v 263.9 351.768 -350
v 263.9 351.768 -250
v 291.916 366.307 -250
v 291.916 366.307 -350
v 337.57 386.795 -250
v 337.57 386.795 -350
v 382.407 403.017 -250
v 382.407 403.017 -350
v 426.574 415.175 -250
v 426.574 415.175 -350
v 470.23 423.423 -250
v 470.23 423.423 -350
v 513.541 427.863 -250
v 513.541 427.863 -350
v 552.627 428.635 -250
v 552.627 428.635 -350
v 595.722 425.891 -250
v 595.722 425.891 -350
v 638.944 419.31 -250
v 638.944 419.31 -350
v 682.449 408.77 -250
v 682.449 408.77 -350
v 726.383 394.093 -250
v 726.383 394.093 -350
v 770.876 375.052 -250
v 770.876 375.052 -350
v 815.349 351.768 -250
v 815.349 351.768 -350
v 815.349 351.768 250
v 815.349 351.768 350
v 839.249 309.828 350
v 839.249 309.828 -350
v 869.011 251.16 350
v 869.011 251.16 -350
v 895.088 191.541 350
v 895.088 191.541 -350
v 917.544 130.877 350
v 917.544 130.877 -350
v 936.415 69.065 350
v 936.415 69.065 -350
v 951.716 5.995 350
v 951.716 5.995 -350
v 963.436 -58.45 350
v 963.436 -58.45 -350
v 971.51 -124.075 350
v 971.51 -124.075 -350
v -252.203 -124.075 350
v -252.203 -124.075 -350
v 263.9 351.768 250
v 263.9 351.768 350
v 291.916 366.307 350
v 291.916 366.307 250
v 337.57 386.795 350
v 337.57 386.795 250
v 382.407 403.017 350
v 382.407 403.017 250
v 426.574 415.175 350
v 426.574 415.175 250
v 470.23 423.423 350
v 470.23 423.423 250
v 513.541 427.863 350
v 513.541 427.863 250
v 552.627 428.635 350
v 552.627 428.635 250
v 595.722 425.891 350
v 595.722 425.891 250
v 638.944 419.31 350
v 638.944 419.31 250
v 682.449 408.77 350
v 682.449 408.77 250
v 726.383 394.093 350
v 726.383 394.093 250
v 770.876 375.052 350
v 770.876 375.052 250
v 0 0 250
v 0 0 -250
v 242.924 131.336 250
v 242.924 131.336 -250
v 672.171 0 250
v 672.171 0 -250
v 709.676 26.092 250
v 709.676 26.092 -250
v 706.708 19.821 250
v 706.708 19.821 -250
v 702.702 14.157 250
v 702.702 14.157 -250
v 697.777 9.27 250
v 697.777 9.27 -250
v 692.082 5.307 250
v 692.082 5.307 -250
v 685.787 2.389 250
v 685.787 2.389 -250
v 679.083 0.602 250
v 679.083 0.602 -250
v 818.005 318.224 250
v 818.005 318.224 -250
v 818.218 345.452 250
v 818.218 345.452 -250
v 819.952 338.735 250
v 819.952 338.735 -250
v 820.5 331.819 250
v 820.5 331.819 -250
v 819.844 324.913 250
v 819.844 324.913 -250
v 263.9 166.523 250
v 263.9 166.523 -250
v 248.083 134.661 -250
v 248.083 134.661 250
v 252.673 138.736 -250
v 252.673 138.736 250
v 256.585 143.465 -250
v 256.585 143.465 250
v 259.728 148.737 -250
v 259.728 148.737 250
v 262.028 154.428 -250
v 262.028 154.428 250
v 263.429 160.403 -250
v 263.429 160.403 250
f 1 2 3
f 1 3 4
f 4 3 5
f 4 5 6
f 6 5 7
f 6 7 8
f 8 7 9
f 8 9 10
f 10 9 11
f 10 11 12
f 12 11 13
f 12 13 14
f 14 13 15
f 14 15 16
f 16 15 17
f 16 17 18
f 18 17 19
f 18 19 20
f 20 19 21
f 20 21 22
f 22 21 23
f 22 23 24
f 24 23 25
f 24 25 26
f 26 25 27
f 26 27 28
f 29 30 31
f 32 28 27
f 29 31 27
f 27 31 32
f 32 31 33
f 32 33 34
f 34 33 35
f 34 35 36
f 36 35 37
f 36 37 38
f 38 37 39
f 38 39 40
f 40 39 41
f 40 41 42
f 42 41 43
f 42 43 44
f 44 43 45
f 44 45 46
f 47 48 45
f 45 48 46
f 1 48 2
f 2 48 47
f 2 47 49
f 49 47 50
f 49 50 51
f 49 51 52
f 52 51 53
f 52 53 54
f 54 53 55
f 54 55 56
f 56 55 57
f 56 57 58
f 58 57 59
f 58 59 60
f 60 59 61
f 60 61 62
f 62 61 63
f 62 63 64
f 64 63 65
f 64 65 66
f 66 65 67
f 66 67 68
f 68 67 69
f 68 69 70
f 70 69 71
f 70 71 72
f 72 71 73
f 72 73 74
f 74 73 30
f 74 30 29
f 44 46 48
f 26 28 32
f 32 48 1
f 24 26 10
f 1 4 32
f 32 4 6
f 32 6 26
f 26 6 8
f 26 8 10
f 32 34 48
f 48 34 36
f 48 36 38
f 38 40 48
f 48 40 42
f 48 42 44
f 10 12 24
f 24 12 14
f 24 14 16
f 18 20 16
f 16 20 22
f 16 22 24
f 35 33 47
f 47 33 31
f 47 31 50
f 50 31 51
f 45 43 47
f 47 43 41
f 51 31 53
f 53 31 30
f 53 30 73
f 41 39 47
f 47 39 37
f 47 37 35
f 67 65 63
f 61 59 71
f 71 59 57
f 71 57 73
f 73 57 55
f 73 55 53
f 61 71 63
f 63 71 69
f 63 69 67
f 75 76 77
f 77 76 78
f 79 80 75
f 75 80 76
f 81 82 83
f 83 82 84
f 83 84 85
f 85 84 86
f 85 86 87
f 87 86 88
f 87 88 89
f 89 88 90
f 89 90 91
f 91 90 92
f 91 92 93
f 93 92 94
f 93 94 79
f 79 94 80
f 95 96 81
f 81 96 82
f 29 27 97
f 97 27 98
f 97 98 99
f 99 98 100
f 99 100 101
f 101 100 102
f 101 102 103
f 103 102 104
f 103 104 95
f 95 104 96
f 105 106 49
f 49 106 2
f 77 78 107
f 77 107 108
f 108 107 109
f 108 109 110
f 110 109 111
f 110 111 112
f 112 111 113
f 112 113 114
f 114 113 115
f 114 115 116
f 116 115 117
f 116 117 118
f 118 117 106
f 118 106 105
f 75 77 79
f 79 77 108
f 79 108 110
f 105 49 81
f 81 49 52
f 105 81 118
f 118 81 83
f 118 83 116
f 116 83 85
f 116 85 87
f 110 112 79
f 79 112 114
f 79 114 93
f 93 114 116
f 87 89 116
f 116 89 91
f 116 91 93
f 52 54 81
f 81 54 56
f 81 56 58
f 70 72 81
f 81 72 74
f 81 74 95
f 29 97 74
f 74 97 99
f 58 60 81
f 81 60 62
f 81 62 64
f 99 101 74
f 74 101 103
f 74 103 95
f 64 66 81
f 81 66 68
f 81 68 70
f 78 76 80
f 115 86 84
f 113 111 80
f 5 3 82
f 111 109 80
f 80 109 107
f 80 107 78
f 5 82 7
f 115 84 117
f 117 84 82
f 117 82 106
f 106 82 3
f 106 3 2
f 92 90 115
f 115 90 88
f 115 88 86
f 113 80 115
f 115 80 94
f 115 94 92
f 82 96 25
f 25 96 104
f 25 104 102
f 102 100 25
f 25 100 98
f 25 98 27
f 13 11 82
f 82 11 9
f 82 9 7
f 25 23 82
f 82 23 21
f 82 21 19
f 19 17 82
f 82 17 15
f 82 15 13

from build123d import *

# Parameters (mm, degrees)
BOSS_EXTRUDE1_DEPTH      = 350
BOSS_EXTRUDE1_DEPTH_BACK = 350
CUT_EXTRUDE1_DEPTH       = 250
CUT_EXTRUDE1_DEPTH_BACK  = 250


with BuildPart() as part:
    # Sketch6 → Boss-Extrude1 (new, two sides: drawn at the far end of the back side and taken through both)
    with BuildSketch(Plane.XY.offset(-BOSS_EXTRUDE1_DEPTH_BACK)):
        with BuildLine():
            Line((971.509879636, -124.075068782), (-252.203431313, -124.075068782))
            Line((-252.203431313, -124.075068782), (263.900031848, 351.768416645))
            add(Edge.make_bspline(
                [(263.900031848, 351.768416645), (546.111311767, 505.694887208), (815.348837324, 351.768416645)],
                knots=[0, 0, 0, 1, 1, 1], degree=2))
            add(Edge.make_bspline(
                [(815.348837324, 351.768416645), (947.510823837, 130.321252054), (971.509879636, -124.075068782)],
                knots=[0, 0, 0, 1, 1, 1], degree=2))
        make_face()
    extrude(amount=BOSS_EXTRUDE1_DEPTH + BOSS_EXTRUDE1_DEPTH_BACK)

    # Sketch5 → Cut-Extrude1 (cut, two sides: drawn at the far end of the back side and taken through both)
    with BuildSketch(Plane.XY.offset(-CUT_EXTRUDE1_DEPTH_BACK)):
        with BuildLine():
            Line((0, 0), (672.171335821, 0))
            ThreePointArc((672.171335821, 0), (695.015340994, 7.164783727), (709.67572834, 26.092428616))
            Line((709.67572834, 26.092428616), (818.005303321, 318.223584322))
            ThreePointArc((818.005303321, 318.223584322), (820.376071762, 335.288930001), (815.348837324, 351.768416645))
            add(Edge.make_bspline(
                [(263.900031848, 351.768416645), (546.111311767, 505.694887208), (815.348837324, 351.768416645)],
                knots=[0, 0, 0, 1, 1, 1], degree=2))
            Line((263.900031848, 351.768416645), (263.900031848, 166.522987154))
            ThreePointArc((263.900031848, 166.522987154), (258.258035835, 146.04061517), (242.923653745, 131.336316241))
            Line((242.923653745, 131.336316241), (0, 0))
        make_face()
    extrude(amount=CUT_EXTRUDE1_DEPTH + CUT_EXTRUDE1_DEPTH_BACK, mode=Mode.SUBTRACT)


solid = part.part
